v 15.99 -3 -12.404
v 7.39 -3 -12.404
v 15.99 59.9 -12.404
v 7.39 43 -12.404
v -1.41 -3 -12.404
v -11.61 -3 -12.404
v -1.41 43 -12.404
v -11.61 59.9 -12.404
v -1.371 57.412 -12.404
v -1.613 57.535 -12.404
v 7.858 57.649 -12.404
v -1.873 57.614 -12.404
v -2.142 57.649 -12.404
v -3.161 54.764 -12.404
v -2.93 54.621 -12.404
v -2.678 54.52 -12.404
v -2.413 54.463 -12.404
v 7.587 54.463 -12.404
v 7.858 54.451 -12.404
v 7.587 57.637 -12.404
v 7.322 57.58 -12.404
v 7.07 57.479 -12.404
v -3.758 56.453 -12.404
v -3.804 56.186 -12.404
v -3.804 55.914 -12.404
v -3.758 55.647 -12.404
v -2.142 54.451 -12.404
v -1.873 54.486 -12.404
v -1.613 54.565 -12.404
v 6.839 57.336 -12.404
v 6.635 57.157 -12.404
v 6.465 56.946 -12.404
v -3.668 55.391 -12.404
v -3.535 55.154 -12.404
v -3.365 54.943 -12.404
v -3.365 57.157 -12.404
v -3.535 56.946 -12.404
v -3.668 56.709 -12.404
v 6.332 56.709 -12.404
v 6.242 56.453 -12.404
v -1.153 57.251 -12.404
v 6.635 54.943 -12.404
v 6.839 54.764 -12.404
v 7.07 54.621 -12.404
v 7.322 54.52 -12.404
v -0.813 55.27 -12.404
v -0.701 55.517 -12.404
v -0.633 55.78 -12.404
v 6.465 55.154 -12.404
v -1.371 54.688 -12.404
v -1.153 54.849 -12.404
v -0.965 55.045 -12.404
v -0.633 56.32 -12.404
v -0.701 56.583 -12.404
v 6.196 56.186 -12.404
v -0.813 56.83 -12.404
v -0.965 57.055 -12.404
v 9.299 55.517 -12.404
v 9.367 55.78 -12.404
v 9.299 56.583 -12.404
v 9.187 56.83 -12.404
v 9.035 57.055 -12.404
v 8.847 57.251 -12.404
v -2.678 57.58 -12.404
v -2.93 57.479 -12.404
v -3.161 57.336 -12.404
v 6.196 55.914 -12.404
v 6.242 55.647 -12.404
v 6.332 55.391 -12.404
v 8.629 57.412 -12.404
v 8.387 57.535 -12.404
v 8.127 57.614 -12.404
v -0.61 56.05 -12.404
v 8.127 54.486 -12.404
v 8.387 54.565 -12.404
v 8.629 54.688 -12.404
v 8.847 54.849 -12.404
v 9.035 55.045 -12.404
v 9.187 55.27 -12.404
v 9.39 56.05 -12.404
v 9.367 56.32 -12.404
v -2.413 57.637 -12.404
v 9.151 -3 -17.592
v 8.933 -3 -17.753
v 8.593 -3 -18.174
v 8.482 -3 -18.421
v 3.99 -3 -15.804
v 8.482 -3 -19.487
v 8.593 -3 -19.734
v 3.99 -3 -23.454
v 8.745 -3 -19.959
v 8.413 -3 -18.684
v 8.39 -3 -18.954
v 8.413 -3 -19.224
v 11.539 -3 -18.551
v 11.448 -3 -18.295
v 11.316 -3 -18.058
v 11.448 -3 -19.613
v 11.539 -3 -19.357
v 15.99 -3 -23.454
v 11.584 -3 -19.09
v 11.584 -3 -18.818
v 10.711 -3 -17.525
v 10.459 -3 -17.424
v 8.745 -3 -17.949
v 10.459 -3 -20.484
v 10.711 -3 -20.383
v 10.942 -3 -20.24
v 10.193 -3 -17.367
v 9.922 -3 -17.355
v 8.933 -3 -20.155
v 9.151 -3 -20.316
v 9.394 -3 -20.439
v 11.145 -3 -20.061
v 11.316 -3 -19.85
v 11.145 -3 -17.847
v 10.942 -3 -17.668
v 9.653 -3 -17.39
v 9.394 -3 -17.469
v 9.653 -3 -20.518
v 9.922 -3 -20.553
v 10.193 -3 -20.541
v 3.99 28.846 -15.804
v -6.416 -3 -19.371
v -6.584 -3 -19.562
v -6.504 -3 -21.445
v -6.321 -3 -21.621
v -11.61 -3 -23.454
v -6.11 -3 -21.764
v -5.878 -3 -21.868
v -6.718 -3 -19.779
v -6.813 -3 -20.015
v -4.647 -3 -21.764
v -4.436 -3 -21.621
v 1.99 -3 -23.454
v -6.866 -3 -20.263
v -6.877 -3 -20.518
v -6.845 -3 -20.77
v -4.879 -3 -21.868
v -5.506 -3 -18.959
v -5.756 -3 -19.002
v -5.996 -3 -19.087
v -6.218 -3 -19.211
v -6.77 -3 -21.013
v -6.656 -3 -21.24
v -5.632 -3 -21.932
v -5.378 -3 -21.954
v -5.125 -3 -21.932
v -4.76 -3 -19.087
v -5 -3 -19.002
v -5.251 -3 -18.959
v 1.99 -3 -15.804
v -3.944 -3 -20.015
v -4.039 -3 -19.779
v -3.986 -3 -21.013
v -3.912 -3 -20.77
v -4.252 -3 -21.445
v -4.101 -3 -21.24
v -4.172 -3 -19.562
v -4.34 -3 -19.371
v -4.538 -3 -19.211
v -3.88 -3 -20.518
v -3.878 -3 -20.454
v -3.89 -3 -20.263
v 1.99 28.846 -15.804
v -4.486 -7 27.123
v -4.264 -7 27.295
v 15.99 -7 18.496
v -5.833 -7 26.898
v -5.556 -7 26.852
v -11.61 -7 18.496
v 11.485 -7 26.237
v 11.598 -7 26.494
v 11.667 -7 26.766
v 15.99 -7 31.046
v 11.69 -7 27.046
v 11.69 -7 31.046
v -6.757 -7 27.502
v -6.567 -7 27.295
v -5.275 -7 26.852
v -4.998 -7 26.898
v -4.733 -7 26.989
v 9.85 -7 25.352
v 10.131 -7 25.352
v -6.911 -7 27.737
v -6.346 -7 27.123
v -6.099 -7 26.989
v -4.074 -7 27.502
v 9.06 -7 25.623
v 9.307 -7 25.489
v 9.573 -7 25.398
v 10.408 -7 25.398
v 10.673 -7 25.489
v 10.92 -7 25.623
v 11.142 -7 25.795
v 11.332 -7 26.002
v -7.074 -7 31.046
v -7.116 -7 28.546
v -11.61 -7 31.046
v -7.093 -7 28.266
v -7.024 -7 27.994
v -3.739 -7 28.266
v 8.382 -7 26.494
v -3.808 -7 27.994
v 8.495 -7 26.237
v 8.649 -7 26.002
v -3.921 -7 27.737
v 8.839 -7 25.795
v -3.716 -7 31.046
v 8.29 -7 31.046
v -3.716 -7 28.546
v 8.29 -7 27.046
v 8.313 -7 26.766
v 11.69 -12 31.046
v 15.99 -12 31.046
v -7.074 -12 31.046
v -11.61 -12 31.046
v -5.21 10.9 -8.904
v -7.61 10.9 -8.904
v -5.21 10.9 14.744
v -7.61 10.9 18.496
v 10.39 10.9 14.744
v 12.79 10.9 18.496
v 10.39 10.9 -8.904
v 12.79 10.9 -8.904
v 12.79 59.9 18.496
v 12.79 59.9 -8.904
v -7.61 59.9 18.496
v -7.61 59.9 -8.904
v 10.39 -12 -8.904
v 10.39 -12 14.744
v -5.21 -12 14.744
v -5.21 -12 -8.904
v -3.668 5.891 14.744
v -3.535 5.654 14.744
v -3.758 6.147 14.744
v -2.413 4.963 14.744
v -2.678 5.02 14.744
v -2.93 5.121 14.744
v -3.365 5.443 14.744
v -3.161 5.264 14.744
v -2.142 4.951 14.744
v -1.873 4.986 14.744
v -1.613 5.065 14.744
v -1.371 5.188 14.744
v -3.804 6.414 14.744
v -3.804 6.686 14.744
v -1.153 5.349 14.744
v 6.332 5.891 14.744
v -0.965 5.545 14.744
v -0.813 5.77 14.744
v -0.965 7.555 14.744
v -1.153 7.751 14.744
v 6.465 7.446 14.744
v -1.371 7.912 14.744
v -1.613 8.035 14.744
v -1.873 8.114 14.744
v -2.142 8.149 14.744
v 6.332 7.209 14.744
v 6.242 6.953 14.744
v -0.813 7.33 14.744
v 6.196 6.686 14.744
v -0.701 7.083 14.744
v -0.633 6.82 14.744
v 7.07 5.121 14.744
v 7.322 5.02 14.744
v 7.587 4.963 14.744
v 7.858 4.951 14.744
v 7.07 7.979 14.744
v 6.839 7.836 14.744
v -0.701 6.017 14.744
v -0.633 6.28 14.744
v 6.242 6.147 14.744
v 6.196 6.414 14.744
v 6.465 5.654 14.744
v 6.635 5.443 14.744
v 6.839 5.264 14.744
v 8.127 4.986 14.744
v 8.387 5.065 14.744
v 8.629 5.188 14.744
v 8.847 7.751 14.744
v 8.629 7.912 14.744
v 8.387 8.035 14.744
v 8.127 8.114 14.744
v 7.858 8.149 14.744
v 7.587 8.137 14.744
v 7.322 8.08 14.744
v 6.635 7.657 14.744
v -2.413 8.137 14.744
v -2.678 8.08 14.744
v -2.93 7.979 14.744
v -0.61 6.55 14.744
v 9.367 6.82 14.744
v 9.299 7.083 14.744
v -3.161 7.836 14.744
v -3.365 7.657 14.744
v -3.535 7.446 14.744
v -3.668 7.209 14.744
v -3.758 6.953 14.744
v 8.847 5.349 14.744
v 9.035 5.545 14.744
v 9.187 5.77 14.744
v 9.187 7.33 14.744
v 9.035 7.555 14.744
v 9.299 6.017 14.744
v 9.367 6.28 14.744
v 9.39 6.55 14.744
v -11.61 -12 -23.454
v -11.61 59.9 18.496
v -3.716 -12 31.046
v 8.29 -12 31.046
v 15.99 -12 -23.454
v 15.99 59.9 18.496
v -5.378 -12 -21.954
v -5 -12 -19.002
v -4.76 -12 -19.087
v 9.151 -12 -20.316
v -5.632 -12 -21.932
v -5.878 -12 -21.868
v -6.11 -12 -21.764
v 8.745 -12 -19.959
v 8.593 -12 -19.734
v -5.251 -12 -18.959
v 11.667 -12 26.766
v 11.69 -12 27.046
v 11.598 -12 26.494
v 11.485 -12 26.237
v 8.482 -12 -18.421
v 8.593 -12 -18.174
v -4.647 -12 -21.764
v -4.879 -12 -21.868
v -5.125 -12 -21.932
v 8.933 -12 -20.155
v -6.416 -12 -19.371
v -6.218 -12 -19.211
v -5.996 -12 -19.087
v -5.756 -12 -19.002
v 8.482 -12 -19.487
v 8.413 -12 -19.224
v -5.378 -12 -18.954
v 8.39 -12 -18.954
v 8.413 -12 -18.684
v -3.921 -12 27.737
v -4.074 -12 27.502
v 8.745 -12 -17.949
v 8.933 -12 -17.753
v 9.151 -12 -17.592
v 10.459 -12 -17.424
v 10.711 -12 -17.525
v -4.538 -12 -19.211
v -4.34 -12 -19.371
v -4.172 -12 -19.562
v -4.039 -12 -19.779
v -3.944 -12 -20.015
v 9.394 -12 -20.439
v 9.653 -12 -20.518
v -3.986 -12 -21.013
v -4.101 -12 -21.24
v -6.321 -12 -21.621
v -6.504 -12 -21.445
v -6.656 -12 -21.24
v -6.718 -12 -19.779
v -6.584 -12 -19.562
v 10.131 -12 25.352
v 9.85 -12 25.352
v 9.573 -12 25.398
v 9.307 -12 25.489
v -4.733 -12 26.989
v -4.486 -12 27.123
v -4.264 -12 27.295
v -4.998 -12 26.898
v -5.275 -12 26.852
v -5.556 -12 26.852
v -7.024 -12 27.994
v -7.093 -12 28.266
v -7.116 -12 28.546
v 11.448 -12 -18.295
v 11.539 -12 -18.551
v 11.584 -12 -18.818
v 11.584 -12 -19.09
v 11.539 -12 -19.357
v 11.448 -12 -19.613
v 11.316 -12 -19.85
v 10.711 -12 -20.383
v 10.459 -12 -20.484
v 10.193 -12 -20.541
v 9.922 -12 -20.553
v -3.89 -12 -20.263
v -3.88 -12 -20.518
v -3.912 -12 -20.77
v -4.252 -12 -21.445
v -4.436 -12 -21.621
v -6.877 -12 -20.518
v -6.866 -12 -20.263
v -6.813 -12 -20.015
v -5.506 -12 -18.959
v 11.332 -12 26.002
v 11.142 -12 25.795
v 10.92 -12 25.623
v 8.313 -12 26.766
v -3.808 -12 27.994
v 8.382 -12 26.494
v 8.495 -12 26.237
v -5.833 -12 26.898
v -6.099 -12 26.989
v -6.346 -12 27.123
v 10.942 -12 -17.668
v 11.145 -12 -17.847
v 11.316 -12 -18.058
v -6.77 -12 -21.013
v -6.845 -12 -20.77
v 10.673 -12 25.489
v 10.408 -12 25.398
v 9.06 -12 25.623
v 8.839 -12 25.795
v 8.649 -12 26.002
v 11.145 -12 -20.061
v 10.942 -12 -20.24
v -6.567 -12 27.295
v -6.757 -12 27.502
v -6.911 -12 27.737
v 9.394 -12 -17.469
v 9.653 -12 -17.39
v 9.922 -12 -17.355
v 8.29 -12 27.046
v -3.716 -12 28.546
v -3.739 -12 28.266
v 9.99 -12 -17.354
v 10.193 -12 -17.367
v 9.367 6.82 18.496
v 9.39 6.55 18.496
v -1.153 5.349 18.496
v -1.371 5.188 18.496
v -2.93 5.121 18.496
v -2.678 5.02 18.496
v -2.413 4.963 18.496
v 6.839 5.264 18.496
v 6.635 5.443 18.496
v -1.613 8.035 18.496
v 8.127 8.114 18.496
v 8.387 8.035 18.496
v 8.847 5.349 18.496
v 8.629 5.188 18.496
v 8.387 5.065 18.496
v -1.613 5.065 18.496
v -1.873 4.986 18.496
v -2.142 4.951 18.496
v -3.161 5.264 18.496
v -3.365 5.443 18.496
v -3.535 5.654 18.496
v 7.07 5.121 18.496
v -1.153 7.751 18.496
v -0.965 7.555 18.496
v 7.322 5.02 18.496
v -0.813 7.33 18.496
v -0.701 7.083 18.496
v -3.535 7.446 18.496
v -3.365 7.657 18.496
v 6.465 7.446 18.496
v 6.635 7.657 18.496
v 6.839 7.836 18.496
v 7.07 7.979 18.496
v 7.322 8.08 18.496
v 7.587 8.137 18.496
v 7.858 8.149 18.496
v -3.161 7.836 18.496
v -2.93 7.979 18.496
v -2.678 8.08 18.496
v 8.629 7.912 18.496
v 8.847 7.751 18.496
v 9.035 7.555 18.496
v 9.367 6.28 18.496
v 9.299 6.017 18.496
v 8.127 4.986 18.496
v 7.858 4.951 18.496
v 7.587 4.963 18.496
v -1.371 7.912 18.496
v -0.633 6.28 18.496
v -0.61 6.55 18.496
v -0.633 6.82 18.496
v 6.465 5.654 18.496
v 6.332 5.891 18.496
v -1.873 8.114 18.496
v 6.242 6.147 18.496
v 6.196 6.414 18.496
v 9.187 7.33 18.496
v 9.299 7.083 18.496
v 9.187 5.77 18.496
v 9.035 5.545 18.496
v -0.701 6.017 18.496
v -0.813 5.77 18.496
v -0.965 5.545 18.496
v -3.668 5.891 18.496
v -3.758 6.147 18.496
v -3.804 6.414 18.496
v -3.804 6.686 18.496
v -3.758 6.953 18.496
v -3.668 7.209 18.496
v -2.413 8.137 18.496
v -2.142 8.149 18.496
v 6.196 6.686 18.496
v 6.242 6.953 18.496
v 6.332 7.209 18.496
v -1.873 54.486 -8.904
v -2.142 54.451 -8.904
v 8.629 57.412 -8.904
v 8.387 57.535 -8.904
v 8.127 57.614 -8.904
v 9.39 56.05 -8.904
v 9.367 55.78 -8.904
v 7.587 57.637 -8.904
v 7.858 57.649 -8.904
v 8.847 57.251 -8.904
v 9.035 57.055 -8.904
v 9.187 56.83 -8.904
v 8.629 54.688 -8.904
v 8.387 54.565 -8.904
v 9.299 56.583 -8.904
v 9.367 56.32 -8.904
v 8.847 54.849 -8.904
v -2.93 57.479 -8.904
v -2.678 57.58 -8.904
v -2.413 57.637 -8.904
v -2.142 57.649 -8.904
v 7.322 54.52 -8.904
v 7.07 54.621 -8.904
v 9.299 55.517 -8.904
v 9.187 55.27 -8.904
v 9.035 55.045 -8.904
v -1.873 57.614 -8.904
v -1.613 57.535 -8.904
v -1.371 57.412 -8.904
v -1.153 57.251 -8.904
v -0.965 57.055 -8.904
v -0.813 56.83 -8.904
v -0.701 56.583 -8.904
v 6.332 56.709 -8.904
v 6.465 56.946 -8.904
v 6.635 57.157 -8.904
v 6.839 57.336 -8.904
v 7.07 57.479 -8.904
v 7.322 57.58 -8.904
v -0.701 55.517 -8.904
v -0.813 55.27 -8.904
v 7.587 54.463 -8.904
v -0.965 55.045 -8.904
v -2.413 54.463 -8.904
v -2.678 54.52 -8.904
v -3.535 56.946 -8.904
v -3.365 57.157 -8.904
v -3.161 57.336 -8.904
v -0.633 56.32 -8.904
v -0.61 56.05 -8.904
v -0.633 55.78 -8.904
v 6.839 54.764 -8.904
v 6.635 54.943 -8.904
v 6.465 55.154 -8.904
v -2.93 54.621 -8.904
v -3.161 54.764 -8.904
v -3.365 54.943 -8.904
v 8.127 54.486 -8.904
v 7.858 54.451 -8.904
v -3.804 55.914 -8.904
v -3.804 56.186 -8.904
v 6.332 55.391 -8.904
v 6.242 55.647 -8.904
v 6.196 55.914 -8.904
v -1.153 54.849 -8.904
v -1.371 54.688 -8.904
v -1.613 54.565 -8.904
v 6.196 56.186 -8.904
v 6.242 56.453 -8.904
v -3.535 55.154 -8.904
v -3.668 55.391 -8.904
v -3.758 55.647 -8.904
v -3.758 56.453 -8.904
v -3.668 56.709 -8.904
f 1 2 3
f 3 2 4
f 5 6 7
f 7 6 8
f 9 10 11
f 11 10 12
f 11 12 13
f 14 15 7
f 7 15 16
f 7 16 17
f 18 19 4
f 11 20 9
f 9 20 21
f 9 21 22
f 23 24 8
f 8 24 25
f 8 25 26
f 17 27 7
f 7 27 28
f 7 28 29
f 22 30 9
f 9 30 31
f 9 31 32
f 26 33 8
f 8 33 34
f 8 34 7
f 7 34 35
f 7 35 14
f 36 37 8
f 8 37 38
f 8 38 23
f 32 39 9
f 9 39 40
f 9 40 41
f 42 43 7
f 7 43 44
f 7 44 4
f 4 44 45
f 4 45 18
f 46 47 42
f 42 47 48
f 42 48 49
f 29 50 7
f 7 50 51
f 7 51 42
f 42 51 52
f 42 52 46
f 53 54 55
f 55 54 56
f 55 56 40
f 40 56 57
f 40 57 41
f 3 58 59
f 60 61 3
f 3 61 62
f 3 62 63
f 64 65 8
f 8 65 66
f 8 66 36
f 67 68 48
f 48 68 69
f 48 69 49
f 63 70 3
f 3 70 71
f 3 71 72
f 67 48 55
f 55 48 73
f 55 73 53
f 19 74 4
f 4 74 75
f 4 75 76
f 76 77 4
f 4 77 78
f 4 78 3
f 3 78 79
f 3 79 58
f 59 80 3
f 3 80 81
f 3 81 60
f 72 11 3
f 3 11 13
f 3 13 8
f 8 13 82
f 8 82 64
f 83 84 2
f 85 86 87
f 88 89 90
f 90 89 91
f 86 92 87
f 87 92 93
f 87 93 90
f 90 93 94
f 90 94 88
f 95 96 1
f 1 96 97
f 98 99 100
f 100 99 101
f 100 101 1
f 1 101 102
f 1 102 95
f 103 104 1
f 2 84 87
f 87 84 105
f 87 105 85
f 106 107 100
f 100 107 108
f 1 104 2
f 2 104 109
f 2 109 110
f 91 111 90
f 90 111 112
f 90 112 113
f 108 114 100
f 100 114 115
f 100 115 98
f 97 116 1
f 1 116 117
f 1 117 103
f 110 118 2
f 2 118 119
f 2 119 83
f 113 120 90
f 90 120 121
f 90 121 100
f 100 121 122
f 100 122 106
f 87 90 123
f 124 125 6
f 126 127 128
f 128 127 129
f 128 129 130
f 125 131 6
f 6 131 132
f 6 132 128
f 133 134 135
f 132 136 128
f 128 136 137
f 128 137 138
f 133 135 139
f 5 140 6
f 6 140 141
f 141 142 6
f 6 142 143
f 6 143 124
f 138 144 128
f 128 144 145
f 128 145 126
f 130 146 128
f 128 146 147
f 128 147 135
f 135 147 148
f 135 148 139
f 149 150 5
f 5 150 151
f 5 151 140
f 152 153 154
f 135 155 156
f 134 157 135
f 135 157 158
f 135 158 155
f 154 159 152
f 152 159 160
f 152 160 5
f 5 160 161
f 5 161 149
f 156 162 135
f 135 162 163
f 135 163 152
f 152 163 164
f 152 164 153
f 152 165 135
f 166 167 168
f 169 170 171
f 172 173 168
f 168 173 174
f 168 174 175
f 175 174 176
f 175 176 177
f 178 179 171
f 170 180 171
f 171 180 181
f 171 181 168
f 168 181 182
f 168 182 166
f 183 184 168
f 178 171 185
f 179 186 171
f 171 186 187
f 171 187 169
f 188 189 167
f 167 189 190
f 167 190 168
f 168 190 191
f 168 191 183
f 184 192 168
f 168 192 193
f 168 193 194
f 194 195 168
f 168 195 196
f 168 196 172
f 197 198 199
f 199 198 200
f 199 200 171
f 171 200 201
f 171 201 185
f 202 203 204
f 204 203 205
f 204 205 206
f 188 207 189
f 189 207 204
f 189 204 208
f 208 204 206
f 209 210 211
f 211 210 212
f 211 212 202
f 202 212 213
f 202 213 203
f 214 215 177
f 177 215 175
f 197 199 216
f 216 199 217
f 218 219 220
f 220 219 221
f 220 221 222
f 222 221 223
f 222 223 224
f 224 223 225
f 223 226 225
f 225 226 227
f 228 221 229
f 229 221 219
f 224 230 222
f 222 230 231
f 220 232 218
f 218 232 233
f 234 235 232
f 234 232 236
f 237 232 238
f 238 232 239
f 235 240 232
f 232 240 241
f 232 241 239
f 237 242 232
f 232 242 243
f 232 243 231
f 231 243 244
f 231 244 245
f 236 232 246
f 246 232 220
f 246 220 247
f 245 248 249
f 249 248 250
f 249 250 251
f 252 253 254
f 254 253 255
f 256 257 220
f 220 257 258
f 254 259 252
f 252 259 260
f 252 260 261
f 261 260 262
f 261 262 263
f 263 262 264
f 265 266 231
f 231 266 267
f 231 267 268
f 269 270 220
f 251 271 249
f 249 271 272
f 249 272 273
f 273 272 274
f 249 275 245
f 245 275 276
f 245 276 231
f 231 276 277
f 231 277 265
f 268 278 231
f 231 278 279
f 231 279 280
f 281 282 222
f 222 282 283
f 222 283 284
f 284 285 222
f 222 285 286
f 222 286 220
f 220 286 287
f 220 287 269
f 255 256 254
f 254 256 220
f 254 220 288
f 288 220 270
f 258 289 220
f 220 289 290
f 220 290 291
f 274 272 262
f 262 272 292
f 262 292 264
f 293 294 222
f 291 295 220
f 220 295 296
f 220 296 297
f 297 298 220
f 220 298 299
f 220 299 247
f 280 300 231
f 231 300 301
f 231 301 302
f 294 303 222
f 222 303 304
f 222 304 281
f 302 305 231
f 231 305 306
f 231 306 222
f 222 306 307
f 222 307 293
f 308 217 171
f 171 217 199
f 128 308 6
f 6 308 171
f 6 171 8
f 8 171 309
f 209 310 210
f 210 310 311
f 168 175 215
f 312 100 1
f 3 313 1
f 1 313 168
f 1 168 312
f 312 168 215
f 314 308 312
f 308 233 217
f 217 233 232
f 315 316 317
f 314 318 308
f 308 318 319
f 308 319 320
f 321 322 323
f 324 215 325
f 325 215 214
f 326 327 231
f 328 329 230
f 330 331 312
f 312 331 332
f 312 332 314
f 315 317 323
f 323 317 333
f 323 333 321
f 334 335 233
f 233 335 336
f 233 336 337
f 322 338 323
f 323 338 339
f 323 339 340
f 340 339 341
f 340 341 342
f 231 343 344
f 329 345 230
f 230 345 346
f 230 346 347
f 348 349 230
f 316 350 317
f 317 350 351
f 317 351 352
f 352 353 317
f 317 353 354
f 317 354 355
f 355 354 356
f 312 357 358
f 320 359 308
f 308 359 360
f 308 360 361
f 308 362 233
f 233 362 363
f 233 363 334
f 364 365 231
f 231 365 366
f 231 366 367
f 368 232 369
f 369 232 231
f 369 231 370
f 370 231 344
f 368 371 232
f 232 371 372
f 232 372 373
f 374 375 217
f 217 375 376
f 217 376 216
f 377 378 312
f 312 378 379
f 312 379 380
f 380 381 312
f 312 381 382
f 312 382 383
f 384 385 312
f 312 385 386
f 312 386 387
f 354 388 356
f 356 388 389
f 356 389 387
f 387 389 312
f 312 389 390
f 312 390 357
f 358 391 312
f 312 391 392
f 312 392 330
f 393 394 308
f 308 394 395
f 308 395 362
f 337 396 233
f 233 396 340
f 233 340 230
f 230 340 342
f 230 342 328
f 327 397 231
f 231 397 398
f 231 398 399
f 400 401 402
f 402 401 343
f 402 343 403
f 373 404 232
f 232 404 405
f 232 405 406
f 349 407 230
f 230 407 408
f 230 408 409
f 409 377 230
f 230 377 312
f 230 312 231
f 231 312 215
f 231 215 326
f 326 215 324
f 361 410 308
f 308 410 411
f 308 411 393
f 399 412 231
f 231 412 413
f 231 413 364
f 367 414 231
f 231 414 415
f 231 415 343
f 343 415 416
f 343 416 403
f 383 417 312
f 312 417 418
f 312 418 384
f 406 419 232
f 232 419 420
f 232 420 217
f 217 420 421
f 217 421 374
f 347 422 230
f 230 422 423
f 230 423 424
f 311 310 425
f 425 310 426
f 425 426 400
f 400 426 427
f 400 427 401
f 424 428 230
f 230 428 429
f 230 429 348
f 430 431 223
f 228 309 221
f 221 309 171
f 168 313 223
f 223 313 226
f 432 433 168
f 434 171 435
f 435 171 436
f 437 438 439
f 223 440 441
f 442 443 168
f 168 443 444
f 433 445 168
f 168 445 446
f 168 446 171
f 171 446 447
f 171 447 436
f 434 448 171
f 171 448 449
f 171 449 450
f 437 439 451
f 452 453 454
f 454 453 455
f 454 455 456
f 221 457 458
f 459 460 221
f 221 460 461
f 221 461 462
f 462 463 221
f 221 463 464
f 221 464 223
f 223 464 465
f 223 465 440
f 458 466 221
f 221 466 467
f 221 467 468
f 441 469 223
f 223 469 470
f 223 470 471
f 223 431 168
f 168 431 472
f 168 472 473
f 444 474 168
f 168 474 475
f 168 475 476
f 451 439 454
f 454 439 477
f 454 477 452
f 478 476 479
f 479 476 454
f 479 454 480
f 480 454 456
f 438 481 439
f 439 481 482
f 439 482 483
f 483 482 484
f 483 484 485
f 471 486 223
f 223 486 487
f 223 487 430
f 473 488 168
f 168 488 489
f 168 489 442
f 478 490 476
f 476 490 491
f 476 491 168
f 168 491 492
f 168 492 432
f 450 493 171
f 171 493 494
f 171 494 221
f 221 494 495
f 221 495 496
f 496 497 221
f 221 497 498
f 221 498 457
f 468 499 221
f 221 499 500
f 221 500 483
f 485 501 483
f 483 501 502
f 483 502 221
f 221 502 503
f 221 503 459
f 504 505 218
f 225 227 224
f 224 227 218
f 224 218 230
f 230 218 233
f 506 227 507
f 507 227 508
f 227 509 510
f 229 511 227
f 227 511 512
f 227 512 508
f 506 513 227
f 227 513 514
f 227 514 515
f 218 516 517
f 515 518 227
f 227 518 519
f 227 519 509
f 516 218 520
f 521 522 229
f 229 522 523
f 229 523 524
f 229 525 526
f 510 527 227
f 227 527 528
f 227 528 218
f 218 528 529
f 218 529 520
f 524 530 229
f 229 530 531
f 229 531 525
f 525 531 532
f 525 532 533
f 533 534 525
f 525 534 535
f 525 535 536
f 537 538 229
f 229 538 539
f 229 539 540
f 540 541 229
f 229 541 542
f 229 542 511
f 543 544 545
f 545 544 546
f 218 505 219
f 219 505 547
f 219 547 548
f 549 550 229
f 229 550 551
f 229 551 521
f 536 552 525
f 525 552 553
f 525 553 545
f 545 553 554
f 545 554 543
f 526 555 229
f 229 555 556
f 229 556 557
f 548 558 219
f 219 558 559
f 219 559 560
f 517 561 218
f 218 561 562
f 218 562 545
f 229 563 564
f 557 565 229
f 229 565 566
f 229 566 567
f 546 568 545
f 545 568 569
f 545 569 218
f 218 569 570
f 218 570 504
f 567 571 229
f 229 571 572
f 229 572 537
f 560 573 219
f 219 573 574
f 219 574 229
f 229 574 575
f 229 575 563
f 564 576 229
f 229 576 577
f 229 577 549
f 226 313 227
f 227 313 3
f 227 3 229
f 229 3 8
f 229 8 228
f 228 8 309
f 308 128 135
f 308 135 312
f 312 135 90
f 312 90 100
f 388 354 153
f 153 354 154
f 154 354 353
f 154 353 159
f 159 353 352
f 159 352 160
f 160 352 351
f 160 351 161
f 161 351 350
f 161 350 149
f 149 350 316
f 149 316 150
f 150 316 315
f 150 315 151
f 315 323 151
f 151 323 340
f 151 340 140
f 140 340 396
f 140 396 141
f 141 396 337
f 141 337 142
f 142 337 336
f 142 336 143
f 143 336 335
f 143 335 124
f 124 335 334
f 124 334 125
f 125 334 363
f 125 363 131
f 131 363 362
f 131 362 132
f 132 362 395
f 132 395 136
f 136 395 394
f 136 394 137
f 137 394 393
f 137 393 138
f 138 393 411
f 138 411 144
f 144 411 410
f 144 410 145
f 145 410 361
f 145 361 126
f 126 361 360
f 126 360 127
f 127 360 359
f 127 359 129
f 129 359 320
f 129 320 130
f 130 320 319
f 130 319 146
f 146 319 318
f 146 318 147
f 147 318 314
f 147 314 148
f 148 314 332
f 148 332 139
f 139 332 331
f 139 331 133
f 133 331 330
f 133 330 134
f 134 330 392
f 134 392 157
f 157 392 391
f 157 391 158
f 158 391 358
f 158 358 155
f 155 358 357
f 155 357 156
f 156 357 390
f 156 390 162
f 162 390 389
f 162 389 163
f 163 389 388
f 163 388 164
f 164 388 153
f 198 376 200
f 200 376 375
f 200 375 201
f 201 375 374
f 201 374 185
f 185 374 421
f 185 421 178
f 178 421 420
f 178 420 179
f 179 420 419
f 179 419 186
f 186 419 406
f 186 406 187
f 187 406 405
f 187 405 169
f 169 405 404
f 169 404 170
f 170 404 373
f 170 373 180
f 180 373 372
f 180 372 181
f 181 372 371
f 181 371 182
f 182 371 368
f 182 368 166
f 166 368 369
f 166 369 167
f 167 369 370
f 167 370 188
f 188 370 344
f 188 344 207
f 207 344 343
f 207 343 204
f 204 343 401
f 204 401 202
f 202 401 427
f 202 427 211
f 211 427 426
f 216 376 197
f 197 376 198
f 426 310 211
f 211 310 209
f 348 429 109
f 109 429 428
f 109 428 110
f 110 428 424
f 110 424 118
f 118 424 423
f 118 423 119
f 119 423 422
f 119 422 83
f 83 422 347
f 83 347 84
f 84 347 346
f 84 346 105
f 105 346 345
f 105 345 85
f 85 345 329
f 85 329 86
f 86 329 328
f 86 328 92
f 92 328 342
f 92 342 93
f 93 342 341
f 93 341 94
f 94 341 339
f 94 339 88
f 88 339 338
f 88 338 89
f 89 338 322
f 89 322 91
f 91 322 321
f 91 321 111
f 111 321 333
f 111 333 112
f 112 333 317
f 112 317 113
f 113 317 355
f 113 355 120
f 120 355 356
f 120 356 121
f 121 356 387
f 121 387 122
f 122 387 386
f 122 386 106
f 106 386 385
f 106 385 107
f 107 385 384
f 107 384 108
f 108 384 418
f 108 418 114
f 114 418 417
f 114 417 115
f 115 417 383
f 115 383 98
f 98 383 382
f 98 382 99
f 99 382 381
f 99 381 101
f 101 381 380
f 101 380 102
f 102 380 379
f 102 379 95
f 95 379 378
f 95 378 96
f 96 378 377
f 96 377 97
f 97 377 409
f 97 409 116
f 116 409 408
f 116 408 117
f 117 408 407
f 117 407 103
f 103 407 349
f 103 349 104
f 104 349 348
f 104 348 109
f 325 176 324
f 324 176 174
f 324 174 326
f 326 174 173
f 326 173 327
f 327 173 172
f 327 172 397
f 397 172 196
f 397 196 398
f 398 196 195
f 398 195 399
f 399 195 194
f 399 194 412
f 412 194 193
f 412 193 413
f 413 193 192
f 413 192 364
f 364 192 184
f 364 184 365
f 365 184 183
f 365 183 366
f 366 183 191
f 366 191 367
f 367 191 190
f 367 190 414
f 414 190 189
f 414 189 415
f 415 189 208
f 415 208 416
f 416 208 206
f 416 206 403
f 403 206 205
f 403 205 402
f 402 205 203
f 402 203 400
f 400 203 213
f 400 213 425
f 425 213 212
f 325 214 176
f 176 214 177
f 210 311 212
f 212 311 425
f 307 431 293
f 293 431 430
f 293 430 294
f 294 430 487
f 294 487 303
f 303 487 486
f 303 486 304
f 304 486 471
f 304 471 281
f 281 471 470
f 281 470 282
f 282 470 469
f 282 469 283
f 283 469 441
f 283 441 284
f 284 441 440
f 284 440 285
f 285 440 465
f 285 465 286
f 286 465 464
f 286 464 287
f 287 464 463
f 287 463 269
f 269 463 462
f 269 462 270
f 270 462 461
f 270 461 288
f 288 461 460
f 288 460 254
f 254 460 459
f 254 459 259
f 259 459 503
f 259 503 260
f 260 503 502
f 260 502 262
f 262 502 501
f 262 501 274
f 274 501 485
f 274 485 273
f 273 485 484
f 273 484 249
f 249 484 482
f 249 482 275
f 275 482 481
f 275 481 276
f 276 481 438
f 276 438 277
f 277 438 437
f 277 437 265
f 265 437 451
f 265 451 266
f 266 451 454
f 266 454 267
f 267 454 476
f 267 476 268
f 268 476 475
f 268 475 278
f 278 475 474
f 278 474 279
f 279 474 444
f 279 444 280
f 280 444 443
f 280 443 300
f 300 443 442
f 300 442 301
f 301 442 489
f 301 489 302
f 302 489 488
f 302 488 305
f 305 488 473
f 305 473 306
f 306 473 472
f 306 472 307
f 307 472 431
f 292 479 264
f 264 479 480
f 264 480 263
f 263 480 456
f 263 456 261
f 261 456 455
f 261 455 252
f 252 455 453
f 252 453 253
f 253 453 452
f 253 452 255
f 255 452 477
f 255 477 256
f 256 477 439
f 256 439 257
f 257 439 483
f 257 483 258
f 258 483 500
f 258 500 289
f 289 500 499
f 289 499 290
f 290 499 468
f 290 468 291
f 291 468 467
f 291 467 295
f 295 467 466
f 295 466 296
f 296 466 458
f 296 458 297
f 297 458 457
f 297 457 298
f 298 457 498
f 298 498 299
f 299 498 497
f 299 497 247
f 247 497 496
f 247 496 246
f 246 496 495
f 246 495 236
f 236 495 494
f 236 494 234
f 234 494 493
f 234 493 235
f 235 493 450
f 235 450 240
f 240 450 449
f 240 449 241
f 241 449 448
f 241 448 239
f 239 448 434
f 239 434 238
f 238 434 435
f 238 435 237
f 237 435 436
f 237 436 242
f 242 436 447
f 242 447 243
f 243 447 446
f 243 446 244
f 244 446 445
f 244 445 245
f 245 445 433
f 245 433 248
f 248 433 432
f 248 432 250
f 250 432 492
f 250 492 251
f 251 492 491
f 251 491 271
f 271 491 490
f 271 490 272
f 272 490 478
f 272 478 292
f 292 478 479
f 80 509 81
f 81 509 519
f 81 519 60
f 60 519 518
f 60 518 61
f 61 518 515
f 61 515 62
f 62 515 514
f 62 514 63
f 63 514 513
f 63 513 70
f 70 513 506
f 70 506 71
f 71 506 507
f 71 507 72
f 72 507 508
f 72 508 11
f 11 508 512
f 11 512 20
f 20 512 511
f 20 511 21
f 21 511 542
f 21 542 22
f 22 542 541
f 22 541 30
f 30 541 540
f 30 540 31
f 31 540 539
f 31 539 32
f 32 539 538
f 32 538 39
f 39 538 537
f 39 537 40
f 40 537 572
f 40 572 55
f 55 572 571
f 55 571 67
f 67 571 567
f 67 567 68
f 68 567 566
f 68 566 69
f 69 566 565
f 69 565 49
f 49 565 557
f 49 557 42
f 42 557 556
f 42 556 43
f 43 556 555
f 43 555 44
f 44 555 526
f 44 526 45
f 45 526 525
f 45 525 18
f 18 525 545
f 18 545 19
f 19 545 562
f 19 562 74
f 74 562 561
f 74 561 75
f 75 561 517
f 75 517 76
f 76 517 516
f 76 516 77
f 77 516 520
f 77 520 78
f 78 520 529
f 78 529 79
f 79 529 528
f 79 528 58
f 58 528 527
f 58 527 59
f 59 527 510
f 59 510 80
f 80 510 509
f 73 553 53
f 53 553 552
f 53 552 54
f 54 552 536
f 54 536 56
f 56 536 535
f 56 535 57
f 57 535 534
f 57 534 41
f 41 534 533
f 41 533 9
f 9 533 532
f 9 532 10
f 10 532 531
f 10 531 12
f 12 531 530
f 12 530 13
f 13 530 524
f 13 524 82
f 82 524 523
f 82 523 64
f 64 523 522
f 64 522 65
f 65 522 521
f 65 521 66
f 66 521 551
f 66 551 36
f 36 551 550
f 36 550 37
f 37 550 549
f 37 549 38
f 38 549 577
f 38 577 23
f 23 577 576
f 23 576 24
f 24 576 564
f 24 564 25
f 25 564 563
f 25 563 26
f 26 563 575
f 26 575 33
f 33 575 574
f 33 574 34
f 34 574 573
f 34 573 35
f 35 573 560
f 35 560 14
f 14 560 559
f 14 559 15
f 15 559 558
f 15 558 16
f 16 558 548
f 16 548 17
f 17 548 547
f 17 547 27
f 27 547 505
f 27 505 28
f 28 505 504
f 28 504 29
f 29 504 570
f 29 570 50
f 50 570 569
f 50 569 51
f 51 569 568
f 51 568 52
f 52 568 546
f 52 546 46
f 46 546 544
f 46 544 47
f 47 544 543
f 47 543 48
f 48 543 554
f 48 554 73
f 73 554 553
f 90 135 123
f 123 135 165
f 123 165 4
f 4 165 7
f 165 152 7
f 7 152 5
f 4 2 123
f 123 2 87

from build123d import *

# Parameters (mm, degrees)
SKETCH1_W               = 25
SKETCH1_H               = 17
BOSS_EXTRUDE1_DEPTH     = 12
MOVE_FACE1_BY           = 15
MOVE_FACE3_BY           = 8
SKETCH3_W               = 25
SKETCH3_H               = 12.751689795
BOSS_EXTRUDE2_DEPTH     = 6.9
SKETCH4_W               = 5
SKETCH4_H               = 16.698310205
BOSS_EXTRUDE3_DEPTH     = 6.9
MOVE_START              = -11.609792285
MOVE_FACE4_OUTLINE_W    = 6.9
MOVE_FACE4_OUTLINE_H    = 16.698310205
MOVE_FACE4_DEPTH        = 2.4
MOVE_FACE5_BY           = 20
SKETCH6_W               = 25
SKETCH6_H               = 10.9
BOSS_EXTRUDE5_DEPTH     = 2
MOVE_FACE6_BY           = 1.5
MOVE_FACE7_BY           = 2.6
SKETCH7_W               = 3.8
SKETCH7_H               = 30.95
BOSS_EXTRUDE6_DEPTH     = 41
SKETCH8_W               = 16.2
SKETCH8_H               = 3.5
BOSS_EXTRUDE7_DEPTH     = 41
SKETCH9_W               = 3
SKETCH9_H               = 30.95
BOSS_EXTRUDE8_DEPTH     = 41
SKETCH10_W              = 4.6
SKETCH10_H              = 3.5
BOSS_EXTRUDE9_DEPTH     = 41
MOVE_FACE8_BY           = 9
MOVE_FACE9_OUTLINE_W    = 6
MOVE_FACE9_OUTLINE_H    = 6.301689795
MOVE_FACE9_OUTLINE_H_2  = 3.5
MOVE_FACE9_DEPTH        = 27.6
MOVE_START_2            = 8.390207715
MOVE_FACE9_2_OUTLINE_W  = 6
MOVE_FACE9_2_OUTLINE_H  = 23.698310205
MOVE_FACE9_2_DEPTH      = 7.6
MOVE_FACE9_3_OUTLINE_W  = 6
MOVE_FACE9_3_OUTLINE_H  = 23.698310205
MOVE_FACE9_3_DEPTH      = 7.4
MOVE_FACE10_BY          = 10
SKETCH11_W              = 27.6
SKETCH11_H              = 3
BOSS_EXTRUDE10_DEPTH    = 11
SKETCH12_R              = 1.5
CUT_EXTRUDE1_DEPTH      = 16
SKETCH13_R              = 1.6
CUT_EXTRUDE2_DEPTH      = 5
SKETCH14_R              = 1.6
CUT_EXTRUDE3_DEPTH      = 9
SKETCH15_R              = 1.6
CUT_EXTRUDE4_DEPTH      = 5
MOVE_FACE14_BY          = 1
MOVE_FACE15_OUTLINE_W   = 16.9
MOVE_FACE15_OUTLINE_H   = 23.698310205
MOVE_FACE15_DEPTH       = 2
MOVE_FACE16_BY          = 8
MOVE_FACE17_BY          = 6
MOVE_FACE19_BY          = 6
MOVE_FACE20_BY          = 5
MOVE_FACE21_BY          = 0.2
MOVE_FACE22_BY          = 0.2
MOVE_START_3            = -12.454005935
MOVE_FACE23_OUTLINE_W   = 27.6
MOVE_FACE23_OUTLINE_H   = 62.9
MOVE_FACE23_DEPTH       = 0.05
MOVE_FACE24_BY          = 0.05
SKETCH17_R              = 1.6
CUT_EXTRUDE5_DEPTH      = 7.5
BOSS_EXTRUDE12_DEPTH    = 2
BOSS_EXTRUDE13_DEPTH    = 46
CUT_EXTRUDE6_DEPTH      = 70.24755409
CUT_EXTRUDE6_DEPTH_BACK = 70.24755409


# Read off the part's stored shape, not the designer's step: Move Face4, Move Face9, Move Face15, Move Face23
with BuildPart() as part:
    # Sketch1 → Boss-Extrude1 (new body)
    with BuildSketch(Plane(origin=(0, 0, 0), x_dir=(1, 0, 0), z_dir=(0, 1, 0))):
        with Locations((0.890207715, 2.454005935)):
            Rectangle(SKETCH1_W, SKETCH1_H)
    extrude(amount=BOSS_EXTRUDE1_DEPTH)

    # Move Face1: a face moved outward by 15.0
    extrude(part.faces().sort_by_distance((0.890207715, 6, 6.045994065))[0], amount=MOVE_FACE1_BY, dir=(0, 0, 1))

    # Move Face3: a face moved inward by 8.0
    extrude(part.faces().sort_by_distance((0.890207715, 12, 5.045994065))[0], amount=MOVE_FACE3_BY, dir=(0, -1, 0), mode=Mode.SUBTRACT)

    # Sketch3 → Boss-Extrude2 (add)
    with BuildSketch(Plane(origin=(0, 4, 0), x_dir=(1, 0, 0), z_dir=(0, 1, 0))):
        with Locations((0.890207715, -12.120149168)):
            Rectangle(SKETCH3_W, SKETCH3_H)
    extrude(amount=BOSS_EXTRUDE2_DEPTH)

    # Sketch4 → Boss-Extrude3 (add)
    with BuildSketch(Plane(origin=(0, 4, 0), x_dir=(1, 0, 0), z_dir=(0, 1, 0))):
        with Locations((10.890207715, 2.604850833)):
            Rectangle(SKETCH4_W, SKETCH4_H)
        with Locations((-6.709792285, 2.604850833)):
            Rectangle(SKETCH4_W, SKETCH4_H)
    extrude(amount=BOSS_EXTRUDE3_DEPTH)

    # Move Face4 outline → Move Face4 (add)
    with BuildSketch(Plane.YZ.offset(MOVE_START)):
        with Locations((7.45, -2.604850833)):
            Rectangle(MOVE_FACE4_OUTLINE_W, MOVE_FACE4_OUTLINE_H)
    extrude(amount=MOVE_FACE4_DEPTH)

    # Move Face5: a face moved inward by 20.0
    extrude(part.faces().sort_by_distance((2.090207715, 4, -2.604850832))[0], amount=MOVE_FACE5_BY, dir=(0, -1, 0), mode=Mode.SUBTRACT)

    # Sketch6 → Boss-Extrude5 (add)
    with BuildSketch(Plane(origin=(0, 0, -10.954005935), x_dir=(-1, 0, 0), z_dir=(0, 0, -1))):
        with Locations((-0.890207715, 5.45)):
            Rectangle(SKETCH6_W, SKETCH6_H)
    extrude(amount=-BOSS_EXTRUDE5_DEPTH)

    # Move Face6: a face moved outward by 1.5
    extrude(part.faces().sort_by_distance((0.890207715, 5.45, -10.954005935))[0], amount=MOVE_FACE6_BY, dir=(0, 0, -1))

    # Move Face7: a face moved outward by 2.6
    extrude(part.faces().sort_by_distance((13.390207715, 5.348749838, 3.512570938))[0], amount=MOVE_FACE7_BY, dir=(1, 0, 0))

    # Sketch7 → Boss-Extrude6 (add)
    with BuildSketch(Plane(origin=(0, 10.9, 0), x_dir=(1, 0, 0), z_dir=(0, 1, 0))):
        with Locations((-9.709792285, -3.020994065)):
            Rectangle(SKETCH7_W, SKETCH7_H)
    extrude(amount=BOSS_EXTRUDE6_DEPTH)

    # Sketch8 → Boss-Extrude7 (add)
    with BuildSketch(Plane(origin=(0, 10.9, 0), x_dir=(1, 0, 0), z_dir=(0, 1, 0))):
        with Locations((0.290207715, 10.704005935)):
            Rectangle(SKETCH8_W, SKETCH8_H)
    extrude(amount=BOSS_EXTRUDE7_DEPTH)

    # Sketch9 → Boss-Extrude8 (add)
    with BuildSketch(Plane(origin=(0, 10.9, 0), x_dir=(1, 0, 0), z_dir=(0, 1, 0))):
        with Locations((14.490207715, -3.020994065)):
            Rectangle(SKETCH9_W, SKETCH9_H)
    extrude(amount=BOSS_EXTRUDE8_DEPTH)

    # Sketch10 → Boss-Extrude9 (add)
    with BuildSketch(Plane(origin=(0, 10.9, 0), x_dir=(1, 0, 0), z_dir=(0, 1, 0))):
        with Locations((10.690207715, 10.704005935)):
            Rectangle(SKETCH10_W, SKETCH10_H)
    extrude(amount=BOSS_EXTRUDE9_DEPTH)

    # Move Face8: a face moved inward by 9.0
    extrude(part.faces().sort_by_distance((2.090207715, 5.45, 5.74430427))[0], amount=MOVE_FACE8_BY, dir=(0, 0, 1), mode=Mode.SUBTRACT)

    # Move Face9 outline → Move Face9 (add)
    with BuildSketch(Plane.YZ.offset(MOVE_START)):
        with Locations((-3, 17.895149168)):
            Rectangle(MOVE_FACE9_OUTLINE_W, MOVE_FACE9_OUTLINE_H)
        with Locations((-3, -10.704005935)):
            Rectangle(MOVE_FACE9_OUTLINE_W, MOVE_FACE9_OUTLINE_H_2)
    extrude(amount=MOVE_FACE9_DEPTH)

    # Move Face9 2 outline → Move Face9 2 (add)
    with BuildSketch(Plane.YZ.offset(MOVE_START_2)):
        with Locations((-3, 2.895149167)):
            Rectangle(MOVE_FACE9_2_OUTLINE_W, MOVE_FACE9_2_OUTLINE_H)
    extrude(amount=MOVE_FACE9_2_DEPTH)

    # Move Face9 3 outline → Move Face9 3 (add)
    with BuildSketch(Plane.YZ.offset(MOVE_START)):
        with Locations((-3, 2.895149167)):
            Rectangle(MOVE_FACE9_3_OUTLINE_W, MOVE_FACE9_3_OUTLINE_H)
    extrude(amount=MOVE_FACE9_3_DEPTH)

    # Move Face10: a face moved outward by 10.0
    extrude(part.faces().sort_by_distance((2.190207715, -1, 21.045994065))[0], amount=MOVE_FACE10_BY, dir=(0, 0, 1))

    # Sketch11 → Boss-Extrude10 (add)
    with BuildSketch(Plane(origin=(0, 0, -12.454005935), x_dir=(-1, 0, 0), z_dir=(0, 0, -1))):
        with Locations((-2.190207715, -4.5)):
            Rectangle(SKETCH11_W, SKETCH11_H)
    extrude(amount=BOSS_EXTRUDE10_DEPTH)

    # Sketch12 → Cut-Extrude1 (cut)
    with BuildSketch(Plane.XZ.offset(6)):
        with Locations(Location((-5.378312816, -20.454005935, 0), (0, 0, 270))):
            Circle(SKETCH12_R)
        with BuildLine():
            Line((-3.715791402, 28.545994065), (-3.715791402, 31.045994065))
            Line((-3.715791402, 31.045994065), (-7.07410382, 31.045994065))
            Line((-7.07410382, 31.045994065), (-7.115791402, 28.545994065))
            ThreePointArc((-7.115791402, 28.545994065), (-5.415791402, 26.845994065), (-3.715791402, 28.545994065))
        make_face()
    extrude(amount=-CUT_EXTRUDE1_DEPTH, mode=Mode.SUBTRACT)

    # Sketch13 → Cut-Extrude2 (cut)
    with BuildSketch(Plane(origin=(0, -3, 0), x_dir=(1, 0, 0), z_dir=(0, 1, 0))):
        with Locations(Location((9.990207715, 18.954005935, 0), (0, 0, 180))):
            Circle(SKETCH13_R)
        with BuildLine():
            Line((11.690207715, -27.045994065), (11.690207715, -31.045994065))
            Line((11.690207715, -31.045994065), (8.290207715, -31.045994065))
            Line((8.290207715, -31.045994065), (8.290207715, -27.045994065))
            ThreePointArc((8.290207715, -27.045994065), (9.990207715, -25.345994065), (11.690207715, -27.045994065))
        make_face()
    extrude(amount=-CUT_EXTRUDE2_DEPTH, mode=Mode.SUBTRACT)

    # Sketch14 → Cut-Extrude3 (cut)
    with BuildSketch(Plane.XZ.offset(3)):
        with Locations((9.990207715, 27.045994065)):
            Circle(SKETCH14_R)
    extrude(amount=-CUT_EXTRUDE3_DEPTH, mode=Mode.SUBTRACT)

    # Sketch15 → Cut-Extrude4 (cut)
    with BuildSketch(Plane.XY.offset(18.495994065)):
        with Locations((-2.209792285, 6.55)):
            Circle(SKETCH15_R)
        with Locations((7.790207715, 6.55)):
            Circle(SKETCH15_R)
    extrude(amount=-CUT_EXTRUDE4_DEPTH, mode=Mode.SUBTRACT)

    # Move Face14: a face moved inward by 1.0
    extrude(part.faces().sort_by_distance((-4.209792285, 2.45, 2.895149168))[0], amount=MOVE_FACE14_BY, dir=(-1, 0, 0), mode=Mode.SUBTRACT)

    # Move Face15 outline → Move Face15 (cut)
    with BuildSketch(Plane.YZ.offset(MOVE_START_2)):
        with Locations((2.45, 2.895149167)):
            Rectangle(MOVE_FACE15_OUTLINE_W, MOVE_FACE15_OUTLINE_H)
    extrude(amount=MOVE_FACE15_DEPTH, mode=Mode.SUBTRACT)

    # Move Face16: a face moved outward by 8.0
    extrude(part.faces().sort_by_distance((2.190207715, 51.9, -9.359005935))[0], amount=MOVE_FACE16_BY, dir=(0, 1, 0))

    # Move Face17: a face moved inward by 6.0
    extrude(part.faces().sort_by_distance((2.300746103, 4, 24.541741789))[0], amount=MOVE_FACE17_BY, dir=(0, -1, 0), mode=Mode.SUBTRACT)

    # Move Face19: a face moved outward by 6.0
    extrude(part.faces().sort_by_distance((13.230207715, -6, 3.795994065))[0], amount=MOVE_FACE19_BY, dir=(0, -1, 0))

    # Move Face20: a face moved inward by 5.0
    extrude(part.faces().sort_by_distance((2.300746103, -2, 24.541741789))[0], amount=MOVE_FACE20_BY, dir=(0, -1, 0), mode=Mode.SUBTRACT)

    # Move Face21: a face moved outward by 0.2
    extrude(part.faces().sort_by_distance((-7.809792285, 35.4, 4.770994065))[0], amount=MOVE_FACE21_BY, dir=(1, 0, 0))

    # Move Face22: a face moved outward by 0.2
    extrude(part.faces().sort_by_distance((12.990207715, 35.4, 4.770994065))[0], amount=MOVE_FACE22_BY, dir=(-1, 0, 0))

    # Move Face23 outline → Move Face23 (cut)
    with BuildSketch(Plane.XY.offset(MOVE_START_3)):
        with Locations((2.190207715, 28.45)):
            Rectangle(MOVE_FACE23_OUTLINE_W, MOVE_FACE23_OUTLINE_H)
    extrude(amount=MOVE_FACE23_DEPTH, mode=Mode.SUBTRACT)

    # Move Face24: a face moved outward by 0.05
    extrude(part.faces().sort_by_distance((2.590207715, 25.934788184, -8.954005935))[0], amount=MOVE_FACE24_BY, dir=(0, 0, 1))

    # Sketch17 → Cut-Extrude5 (cut)
    with BuildSketch(Plane.XY.offset(-8.904005935)):
        with Locations((-2.209792285, 56.05)):
            Circle(SKETCH17_R)
        with Locations((7.790207715, 56.05)):
            Circle(SKETCH17_R)
    extrude(amount=-CUT_EXTRUDE5_DEPTH, mode=Mode.SUBTRACT)

    # Sketch19 → Boss-Extrude12 (add)
    with BuildSketch(Plane(origin=(3.990207715, 0, 0), x_dir=(0, 0, -1), z_dir=(1, 0, 0))):
        Polygon((23.454005935, -3), (12.404005935, 43), (12.404005935, -3), align=None)
    extrude(amount=-BOSS_EXTRUDE12_DEPTH)

    # Sketch20 → Boss-Extrude13 (add)
    with BuildSketch(Plane(origin=(0, -3, 0), x_dir=(1, 0, 0), z_dir=(0, 1, 0))):
        Polygon((1.990207715, 15.804005935), (-1.409792285, 12.404005935), (1.990207715, 12.404005935), align=None)
        Polygon((3.990207715, 15.804005935), (7.390207715, 12.404005935), (3.990207715, 12.404005935), align=None)
    extrude(amount=BOSS_EXTRUDE13_DEPTH)

    # Sketch21 → Cut-Extrude6 (cut, two sides: drawn at the far end of the back side and taken through both)
    with BuildSketch(Plane(origin=(3.990207715, 0, 0), x_dir=(0, 0, -1), z_dir=(1, 0, 0)).offset(-CUT_EXTRUDE6_DEPTH_BACK)):
        Polygon((15.902869946, 28.434593255), (12.404005935, 43), (16.038201458, 43), align=None)
    extrude(amount=CUT_EXTRUDE6_DEPTH + CUT_EXTRUDE6_DEPTH_BACK, mode=Mode.SUBTRACT)


solid = part.part
